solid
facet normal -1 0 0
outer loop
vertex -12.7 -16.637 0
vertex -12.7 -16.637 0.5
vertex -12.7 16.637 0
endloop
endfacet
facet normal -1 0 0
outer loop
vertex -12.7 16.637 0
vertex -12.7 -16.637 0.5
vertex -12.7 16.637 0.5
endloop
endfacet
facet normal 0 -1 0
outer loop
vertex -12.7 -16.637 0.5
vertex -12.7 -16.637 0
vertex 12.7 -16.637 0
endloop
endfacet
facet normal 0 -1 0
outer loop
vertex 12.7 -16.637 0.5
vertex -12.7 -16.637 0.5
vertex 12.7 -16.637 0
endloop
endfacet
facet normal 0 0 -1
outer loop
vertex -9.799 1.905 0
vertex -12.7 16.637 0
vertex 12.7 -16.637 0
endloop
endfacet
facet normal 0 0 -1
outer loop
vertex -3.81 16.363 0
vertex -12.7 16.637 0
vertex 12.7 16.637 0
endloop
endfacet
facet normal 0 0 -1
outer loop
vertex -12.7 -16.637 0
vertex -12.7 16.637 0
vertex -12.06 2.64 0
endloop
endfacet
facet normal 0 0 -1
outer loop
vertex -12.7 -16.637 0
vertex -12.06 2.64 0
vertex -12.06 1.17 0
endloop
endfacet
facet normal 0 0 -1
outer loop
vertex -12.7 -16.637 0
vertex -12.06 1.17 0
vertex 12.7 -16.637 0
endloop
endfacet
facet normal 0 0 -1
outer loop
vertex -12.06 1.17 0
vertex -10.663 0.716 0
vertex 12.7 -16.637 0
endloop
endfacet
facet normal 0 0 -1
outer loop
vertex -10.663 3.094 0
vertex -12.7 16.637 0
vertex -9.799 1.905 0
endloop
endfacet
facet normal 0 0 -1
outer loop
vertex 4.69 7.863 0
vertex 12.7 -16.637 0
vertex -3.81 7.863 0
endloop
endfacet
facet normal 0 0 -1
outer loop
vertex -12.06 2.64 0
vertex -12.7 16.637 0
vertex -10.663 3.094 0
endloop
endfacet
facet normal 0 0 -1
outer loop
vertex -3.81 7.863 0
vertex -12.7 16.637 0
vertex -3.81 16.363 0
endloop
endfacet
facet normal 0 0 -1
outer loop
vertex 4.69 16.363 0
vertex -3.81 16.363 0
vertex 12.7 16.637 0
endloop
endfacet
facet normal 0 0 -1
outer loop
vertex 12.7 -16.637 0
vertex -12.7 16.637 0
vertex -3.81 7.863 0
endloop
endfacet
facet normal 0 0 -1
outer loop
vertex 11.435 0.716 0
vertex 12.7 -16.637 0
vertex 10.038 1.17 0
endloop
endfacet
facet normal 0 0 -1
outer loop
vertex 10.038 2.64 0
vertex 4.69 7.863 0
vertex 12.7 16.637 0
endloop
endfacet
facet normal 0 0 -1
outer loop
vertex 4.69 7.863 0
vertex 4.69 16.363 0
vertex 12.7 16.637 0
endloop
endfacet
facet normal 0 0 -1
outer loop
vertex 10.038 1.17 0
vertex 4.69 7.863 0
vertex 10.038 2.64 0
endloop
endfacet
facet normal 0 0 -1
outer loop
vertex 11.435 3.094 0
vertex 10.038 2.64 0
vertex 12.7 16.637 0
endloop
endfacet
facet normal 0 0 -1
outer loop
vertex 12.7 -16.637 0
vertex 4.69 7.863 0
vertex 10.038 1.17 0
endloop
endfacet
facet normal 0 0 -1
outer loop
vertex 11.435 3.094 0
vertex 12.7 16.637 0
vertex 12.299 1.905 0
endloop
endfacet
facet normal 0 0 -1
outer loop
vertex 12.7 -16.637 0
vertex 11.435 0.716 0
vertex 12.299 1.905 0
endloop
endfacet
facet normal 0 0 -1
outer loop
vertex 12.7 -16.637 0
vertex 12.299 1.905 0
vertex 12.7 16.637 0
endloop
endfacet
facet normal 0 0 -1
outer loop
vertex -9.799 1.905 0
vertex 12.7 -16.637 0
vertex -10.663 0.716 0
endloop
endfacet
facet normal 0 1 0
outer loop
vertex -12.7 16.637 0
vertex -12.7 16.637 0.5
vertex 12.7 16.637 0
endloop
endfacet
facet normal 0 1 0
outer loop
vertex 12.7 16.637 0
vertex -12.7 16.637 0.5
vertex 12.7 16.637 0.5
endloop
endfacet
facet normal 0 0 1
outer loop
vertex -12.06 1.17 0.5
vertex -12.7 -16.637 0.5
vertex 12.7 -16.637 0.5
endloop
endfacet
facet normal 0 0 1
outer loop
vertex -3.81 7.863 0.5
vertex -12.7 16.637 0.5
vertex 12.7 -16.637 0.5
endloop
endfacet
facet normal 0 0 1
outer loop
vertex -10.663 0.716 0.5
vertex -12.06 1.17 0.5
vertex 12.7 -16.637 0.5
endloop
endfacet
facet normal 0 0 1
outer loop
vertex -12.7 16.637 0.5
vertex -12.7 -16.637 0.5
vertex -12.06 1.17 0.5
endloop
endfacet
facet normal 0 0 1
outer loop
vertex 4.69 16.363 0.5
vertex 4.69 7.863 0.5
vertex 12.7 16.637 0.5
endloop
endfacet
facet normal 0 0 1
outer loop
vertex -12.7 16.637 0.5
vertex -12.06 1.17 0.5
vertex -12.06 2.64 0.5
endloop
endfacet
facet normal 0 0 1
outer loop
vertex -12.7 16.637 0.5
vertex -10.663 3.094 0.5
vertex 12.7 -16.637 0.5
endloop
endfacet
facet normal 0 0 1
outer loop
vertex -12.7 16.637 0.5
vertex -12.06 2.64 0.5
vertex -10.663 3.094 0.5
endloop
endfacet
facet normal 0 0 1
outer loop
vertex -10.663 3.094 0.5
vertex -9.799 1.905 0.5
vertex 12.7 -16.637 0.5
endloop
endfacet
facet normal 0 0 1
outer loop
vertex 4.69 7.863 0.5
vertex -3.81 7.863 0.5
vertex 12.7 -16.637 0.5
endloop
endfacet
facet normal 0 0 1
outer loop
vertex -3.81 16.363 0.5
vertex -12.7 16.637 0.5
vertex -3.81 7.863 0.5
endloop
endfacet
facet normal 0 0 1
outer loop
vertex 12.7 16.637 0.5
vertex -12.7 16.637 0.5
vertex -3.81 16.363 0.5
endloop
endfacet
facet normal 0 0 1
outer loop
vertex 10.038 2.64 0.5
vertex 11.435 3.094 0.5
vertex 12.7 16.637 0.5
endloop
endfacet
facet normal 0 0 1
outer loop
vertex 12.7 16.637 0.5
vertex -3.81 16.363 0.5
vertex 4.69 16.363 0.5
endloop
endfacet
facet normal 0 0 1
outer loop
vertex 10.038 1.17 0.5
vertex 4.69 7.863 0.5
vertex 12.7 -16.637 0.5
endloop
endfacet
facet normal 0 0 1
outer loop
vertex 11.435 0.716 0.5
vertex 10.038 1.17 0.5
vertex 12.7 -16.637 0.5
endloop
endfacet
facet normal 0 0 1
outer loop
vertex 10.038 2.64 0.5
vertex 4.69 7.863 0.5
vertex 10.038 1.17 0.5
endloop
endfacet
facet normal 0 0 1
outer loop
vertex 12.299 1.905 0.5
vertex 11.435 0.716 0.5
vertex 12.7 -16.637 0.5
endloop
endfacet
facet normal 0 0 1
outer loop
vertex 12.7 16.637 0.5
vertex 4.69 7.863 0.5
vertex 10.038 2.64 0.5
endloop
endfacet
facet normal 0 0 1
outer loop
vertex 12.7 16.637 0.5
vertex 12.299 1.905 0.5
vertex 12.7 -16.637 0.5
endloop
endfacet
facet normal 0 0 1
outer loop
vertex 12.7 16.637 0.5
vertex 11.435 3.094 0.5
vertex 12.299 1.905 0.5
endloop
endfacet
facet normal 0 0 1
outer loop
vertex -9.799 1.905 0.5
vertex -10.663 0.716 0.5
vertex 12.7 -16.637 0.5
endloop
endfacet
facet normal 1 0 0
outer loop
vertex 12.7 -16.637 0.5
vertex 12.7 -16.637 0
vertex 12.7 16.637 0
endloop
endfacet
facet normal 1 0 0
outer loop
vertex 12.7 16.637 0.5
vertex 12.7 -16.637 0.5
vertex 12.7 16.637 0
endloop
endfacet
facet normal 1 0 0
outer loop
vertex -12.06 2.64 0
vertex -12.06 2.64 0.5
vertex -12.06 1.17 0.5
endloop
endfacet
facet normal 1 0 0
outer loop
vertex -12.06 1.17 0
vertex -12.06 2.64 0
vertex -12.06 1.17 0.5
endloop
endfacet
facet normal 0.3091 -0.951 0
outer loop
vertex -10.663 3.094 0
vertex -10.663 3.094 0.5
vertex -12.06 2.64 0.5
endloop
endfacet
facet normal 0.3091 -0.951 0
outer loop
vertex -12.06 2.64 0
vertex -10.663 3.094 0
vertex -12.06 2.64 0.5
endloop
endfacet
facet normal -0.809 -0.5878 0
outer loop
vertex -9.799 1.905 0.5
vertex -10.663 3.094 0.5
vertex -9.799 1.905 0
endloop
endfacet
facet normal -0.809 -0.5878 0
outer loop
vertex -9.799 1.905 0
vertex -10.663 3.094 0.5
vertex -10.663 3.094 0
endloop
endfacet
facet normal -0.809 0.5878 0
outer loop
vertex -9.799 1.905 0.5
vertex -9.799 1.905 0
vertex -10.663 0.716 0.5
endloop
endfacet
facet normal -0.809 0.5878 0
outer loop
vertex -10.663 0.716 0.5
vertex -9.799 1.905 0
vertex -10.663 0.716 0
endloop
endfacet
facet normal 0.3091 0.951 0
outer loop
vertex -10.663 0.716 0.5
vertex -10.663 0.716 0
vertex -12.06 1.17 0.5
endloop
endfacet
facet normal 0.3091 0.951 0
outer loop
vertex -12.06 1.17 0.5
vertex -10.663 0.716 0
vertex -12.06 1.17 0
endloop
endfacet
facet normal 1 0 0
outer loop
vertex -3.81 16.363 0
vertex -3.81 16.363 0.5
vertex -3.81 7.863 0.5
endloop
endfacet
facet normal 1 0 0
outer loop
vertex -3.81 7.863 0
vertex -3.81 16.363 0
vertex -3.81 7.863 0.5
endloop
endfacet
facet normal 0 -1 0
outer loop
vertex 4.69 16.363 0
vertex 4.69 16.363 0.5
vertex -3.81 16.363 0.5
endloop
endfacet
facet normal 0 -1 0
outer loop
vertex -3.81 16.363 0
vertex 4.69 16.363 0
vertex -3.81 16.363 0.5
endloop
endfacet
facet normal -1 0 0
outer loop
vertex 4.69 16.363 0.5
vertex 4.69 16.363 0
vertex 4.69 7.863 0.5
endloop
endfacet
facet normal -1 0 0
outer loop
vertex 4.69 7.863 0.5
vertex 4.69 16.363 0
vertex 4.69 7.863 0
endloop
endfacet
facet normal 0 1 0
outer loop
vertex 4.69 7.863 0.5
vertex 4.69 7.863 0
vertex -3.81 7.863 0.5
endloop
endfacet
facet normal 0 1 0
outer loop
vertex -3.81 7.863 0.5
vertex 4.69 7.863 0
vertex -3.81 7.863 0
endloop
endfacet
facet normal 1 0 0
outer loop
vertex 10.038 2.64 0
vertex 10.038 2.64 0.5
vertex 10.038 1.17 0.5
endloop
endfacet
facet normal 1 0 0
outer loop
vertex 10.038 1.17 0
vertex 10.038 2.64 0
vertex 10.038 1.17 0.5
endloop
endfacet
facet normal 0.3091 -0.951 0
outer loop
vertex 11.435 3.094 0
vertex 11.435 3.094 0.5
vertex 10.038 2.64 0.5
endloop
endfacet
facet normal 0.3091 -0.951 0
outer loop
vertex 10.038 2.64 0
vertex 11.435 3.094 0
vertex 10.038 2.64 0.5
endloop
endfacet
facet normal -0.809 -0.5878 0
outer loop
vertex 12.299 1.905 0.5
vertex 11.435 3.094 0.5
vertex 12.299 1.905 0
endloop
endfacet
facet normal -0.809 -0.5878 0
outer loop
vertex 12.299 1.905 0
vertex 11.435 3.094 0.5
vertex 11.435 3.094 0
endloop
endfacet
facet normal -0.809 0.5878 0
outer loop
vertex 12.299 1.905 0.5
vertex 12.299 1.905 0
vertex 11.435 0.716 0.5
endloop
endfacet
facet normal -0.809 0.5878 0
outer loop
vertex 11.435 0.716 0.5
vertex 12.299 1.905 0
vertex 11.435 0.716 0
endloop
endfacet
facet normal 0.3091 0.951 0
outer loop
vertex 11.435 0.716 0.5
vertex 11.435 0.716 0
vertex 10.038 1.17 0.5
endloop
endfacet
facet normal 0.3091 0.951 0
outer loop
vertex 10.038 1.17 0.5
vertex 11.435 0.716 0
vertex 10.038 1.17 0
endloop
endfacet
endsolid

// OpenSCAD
width=25.400;
length=33.274;
height=0.5;
translate([-width/2, -length/2, 0]) 
difference() { 
	translate([0, 0, 0]) cube([width,length,height]); 
	translate([1.651, 18.542,0]) cylinder(100,1.25,1.25);
	translate([23.749, 18.542,0]) cylinder(100,1.25,1.25);
	translate([8.89, 24.5, 0]) cube([8.5,8.5,height]); 
}
